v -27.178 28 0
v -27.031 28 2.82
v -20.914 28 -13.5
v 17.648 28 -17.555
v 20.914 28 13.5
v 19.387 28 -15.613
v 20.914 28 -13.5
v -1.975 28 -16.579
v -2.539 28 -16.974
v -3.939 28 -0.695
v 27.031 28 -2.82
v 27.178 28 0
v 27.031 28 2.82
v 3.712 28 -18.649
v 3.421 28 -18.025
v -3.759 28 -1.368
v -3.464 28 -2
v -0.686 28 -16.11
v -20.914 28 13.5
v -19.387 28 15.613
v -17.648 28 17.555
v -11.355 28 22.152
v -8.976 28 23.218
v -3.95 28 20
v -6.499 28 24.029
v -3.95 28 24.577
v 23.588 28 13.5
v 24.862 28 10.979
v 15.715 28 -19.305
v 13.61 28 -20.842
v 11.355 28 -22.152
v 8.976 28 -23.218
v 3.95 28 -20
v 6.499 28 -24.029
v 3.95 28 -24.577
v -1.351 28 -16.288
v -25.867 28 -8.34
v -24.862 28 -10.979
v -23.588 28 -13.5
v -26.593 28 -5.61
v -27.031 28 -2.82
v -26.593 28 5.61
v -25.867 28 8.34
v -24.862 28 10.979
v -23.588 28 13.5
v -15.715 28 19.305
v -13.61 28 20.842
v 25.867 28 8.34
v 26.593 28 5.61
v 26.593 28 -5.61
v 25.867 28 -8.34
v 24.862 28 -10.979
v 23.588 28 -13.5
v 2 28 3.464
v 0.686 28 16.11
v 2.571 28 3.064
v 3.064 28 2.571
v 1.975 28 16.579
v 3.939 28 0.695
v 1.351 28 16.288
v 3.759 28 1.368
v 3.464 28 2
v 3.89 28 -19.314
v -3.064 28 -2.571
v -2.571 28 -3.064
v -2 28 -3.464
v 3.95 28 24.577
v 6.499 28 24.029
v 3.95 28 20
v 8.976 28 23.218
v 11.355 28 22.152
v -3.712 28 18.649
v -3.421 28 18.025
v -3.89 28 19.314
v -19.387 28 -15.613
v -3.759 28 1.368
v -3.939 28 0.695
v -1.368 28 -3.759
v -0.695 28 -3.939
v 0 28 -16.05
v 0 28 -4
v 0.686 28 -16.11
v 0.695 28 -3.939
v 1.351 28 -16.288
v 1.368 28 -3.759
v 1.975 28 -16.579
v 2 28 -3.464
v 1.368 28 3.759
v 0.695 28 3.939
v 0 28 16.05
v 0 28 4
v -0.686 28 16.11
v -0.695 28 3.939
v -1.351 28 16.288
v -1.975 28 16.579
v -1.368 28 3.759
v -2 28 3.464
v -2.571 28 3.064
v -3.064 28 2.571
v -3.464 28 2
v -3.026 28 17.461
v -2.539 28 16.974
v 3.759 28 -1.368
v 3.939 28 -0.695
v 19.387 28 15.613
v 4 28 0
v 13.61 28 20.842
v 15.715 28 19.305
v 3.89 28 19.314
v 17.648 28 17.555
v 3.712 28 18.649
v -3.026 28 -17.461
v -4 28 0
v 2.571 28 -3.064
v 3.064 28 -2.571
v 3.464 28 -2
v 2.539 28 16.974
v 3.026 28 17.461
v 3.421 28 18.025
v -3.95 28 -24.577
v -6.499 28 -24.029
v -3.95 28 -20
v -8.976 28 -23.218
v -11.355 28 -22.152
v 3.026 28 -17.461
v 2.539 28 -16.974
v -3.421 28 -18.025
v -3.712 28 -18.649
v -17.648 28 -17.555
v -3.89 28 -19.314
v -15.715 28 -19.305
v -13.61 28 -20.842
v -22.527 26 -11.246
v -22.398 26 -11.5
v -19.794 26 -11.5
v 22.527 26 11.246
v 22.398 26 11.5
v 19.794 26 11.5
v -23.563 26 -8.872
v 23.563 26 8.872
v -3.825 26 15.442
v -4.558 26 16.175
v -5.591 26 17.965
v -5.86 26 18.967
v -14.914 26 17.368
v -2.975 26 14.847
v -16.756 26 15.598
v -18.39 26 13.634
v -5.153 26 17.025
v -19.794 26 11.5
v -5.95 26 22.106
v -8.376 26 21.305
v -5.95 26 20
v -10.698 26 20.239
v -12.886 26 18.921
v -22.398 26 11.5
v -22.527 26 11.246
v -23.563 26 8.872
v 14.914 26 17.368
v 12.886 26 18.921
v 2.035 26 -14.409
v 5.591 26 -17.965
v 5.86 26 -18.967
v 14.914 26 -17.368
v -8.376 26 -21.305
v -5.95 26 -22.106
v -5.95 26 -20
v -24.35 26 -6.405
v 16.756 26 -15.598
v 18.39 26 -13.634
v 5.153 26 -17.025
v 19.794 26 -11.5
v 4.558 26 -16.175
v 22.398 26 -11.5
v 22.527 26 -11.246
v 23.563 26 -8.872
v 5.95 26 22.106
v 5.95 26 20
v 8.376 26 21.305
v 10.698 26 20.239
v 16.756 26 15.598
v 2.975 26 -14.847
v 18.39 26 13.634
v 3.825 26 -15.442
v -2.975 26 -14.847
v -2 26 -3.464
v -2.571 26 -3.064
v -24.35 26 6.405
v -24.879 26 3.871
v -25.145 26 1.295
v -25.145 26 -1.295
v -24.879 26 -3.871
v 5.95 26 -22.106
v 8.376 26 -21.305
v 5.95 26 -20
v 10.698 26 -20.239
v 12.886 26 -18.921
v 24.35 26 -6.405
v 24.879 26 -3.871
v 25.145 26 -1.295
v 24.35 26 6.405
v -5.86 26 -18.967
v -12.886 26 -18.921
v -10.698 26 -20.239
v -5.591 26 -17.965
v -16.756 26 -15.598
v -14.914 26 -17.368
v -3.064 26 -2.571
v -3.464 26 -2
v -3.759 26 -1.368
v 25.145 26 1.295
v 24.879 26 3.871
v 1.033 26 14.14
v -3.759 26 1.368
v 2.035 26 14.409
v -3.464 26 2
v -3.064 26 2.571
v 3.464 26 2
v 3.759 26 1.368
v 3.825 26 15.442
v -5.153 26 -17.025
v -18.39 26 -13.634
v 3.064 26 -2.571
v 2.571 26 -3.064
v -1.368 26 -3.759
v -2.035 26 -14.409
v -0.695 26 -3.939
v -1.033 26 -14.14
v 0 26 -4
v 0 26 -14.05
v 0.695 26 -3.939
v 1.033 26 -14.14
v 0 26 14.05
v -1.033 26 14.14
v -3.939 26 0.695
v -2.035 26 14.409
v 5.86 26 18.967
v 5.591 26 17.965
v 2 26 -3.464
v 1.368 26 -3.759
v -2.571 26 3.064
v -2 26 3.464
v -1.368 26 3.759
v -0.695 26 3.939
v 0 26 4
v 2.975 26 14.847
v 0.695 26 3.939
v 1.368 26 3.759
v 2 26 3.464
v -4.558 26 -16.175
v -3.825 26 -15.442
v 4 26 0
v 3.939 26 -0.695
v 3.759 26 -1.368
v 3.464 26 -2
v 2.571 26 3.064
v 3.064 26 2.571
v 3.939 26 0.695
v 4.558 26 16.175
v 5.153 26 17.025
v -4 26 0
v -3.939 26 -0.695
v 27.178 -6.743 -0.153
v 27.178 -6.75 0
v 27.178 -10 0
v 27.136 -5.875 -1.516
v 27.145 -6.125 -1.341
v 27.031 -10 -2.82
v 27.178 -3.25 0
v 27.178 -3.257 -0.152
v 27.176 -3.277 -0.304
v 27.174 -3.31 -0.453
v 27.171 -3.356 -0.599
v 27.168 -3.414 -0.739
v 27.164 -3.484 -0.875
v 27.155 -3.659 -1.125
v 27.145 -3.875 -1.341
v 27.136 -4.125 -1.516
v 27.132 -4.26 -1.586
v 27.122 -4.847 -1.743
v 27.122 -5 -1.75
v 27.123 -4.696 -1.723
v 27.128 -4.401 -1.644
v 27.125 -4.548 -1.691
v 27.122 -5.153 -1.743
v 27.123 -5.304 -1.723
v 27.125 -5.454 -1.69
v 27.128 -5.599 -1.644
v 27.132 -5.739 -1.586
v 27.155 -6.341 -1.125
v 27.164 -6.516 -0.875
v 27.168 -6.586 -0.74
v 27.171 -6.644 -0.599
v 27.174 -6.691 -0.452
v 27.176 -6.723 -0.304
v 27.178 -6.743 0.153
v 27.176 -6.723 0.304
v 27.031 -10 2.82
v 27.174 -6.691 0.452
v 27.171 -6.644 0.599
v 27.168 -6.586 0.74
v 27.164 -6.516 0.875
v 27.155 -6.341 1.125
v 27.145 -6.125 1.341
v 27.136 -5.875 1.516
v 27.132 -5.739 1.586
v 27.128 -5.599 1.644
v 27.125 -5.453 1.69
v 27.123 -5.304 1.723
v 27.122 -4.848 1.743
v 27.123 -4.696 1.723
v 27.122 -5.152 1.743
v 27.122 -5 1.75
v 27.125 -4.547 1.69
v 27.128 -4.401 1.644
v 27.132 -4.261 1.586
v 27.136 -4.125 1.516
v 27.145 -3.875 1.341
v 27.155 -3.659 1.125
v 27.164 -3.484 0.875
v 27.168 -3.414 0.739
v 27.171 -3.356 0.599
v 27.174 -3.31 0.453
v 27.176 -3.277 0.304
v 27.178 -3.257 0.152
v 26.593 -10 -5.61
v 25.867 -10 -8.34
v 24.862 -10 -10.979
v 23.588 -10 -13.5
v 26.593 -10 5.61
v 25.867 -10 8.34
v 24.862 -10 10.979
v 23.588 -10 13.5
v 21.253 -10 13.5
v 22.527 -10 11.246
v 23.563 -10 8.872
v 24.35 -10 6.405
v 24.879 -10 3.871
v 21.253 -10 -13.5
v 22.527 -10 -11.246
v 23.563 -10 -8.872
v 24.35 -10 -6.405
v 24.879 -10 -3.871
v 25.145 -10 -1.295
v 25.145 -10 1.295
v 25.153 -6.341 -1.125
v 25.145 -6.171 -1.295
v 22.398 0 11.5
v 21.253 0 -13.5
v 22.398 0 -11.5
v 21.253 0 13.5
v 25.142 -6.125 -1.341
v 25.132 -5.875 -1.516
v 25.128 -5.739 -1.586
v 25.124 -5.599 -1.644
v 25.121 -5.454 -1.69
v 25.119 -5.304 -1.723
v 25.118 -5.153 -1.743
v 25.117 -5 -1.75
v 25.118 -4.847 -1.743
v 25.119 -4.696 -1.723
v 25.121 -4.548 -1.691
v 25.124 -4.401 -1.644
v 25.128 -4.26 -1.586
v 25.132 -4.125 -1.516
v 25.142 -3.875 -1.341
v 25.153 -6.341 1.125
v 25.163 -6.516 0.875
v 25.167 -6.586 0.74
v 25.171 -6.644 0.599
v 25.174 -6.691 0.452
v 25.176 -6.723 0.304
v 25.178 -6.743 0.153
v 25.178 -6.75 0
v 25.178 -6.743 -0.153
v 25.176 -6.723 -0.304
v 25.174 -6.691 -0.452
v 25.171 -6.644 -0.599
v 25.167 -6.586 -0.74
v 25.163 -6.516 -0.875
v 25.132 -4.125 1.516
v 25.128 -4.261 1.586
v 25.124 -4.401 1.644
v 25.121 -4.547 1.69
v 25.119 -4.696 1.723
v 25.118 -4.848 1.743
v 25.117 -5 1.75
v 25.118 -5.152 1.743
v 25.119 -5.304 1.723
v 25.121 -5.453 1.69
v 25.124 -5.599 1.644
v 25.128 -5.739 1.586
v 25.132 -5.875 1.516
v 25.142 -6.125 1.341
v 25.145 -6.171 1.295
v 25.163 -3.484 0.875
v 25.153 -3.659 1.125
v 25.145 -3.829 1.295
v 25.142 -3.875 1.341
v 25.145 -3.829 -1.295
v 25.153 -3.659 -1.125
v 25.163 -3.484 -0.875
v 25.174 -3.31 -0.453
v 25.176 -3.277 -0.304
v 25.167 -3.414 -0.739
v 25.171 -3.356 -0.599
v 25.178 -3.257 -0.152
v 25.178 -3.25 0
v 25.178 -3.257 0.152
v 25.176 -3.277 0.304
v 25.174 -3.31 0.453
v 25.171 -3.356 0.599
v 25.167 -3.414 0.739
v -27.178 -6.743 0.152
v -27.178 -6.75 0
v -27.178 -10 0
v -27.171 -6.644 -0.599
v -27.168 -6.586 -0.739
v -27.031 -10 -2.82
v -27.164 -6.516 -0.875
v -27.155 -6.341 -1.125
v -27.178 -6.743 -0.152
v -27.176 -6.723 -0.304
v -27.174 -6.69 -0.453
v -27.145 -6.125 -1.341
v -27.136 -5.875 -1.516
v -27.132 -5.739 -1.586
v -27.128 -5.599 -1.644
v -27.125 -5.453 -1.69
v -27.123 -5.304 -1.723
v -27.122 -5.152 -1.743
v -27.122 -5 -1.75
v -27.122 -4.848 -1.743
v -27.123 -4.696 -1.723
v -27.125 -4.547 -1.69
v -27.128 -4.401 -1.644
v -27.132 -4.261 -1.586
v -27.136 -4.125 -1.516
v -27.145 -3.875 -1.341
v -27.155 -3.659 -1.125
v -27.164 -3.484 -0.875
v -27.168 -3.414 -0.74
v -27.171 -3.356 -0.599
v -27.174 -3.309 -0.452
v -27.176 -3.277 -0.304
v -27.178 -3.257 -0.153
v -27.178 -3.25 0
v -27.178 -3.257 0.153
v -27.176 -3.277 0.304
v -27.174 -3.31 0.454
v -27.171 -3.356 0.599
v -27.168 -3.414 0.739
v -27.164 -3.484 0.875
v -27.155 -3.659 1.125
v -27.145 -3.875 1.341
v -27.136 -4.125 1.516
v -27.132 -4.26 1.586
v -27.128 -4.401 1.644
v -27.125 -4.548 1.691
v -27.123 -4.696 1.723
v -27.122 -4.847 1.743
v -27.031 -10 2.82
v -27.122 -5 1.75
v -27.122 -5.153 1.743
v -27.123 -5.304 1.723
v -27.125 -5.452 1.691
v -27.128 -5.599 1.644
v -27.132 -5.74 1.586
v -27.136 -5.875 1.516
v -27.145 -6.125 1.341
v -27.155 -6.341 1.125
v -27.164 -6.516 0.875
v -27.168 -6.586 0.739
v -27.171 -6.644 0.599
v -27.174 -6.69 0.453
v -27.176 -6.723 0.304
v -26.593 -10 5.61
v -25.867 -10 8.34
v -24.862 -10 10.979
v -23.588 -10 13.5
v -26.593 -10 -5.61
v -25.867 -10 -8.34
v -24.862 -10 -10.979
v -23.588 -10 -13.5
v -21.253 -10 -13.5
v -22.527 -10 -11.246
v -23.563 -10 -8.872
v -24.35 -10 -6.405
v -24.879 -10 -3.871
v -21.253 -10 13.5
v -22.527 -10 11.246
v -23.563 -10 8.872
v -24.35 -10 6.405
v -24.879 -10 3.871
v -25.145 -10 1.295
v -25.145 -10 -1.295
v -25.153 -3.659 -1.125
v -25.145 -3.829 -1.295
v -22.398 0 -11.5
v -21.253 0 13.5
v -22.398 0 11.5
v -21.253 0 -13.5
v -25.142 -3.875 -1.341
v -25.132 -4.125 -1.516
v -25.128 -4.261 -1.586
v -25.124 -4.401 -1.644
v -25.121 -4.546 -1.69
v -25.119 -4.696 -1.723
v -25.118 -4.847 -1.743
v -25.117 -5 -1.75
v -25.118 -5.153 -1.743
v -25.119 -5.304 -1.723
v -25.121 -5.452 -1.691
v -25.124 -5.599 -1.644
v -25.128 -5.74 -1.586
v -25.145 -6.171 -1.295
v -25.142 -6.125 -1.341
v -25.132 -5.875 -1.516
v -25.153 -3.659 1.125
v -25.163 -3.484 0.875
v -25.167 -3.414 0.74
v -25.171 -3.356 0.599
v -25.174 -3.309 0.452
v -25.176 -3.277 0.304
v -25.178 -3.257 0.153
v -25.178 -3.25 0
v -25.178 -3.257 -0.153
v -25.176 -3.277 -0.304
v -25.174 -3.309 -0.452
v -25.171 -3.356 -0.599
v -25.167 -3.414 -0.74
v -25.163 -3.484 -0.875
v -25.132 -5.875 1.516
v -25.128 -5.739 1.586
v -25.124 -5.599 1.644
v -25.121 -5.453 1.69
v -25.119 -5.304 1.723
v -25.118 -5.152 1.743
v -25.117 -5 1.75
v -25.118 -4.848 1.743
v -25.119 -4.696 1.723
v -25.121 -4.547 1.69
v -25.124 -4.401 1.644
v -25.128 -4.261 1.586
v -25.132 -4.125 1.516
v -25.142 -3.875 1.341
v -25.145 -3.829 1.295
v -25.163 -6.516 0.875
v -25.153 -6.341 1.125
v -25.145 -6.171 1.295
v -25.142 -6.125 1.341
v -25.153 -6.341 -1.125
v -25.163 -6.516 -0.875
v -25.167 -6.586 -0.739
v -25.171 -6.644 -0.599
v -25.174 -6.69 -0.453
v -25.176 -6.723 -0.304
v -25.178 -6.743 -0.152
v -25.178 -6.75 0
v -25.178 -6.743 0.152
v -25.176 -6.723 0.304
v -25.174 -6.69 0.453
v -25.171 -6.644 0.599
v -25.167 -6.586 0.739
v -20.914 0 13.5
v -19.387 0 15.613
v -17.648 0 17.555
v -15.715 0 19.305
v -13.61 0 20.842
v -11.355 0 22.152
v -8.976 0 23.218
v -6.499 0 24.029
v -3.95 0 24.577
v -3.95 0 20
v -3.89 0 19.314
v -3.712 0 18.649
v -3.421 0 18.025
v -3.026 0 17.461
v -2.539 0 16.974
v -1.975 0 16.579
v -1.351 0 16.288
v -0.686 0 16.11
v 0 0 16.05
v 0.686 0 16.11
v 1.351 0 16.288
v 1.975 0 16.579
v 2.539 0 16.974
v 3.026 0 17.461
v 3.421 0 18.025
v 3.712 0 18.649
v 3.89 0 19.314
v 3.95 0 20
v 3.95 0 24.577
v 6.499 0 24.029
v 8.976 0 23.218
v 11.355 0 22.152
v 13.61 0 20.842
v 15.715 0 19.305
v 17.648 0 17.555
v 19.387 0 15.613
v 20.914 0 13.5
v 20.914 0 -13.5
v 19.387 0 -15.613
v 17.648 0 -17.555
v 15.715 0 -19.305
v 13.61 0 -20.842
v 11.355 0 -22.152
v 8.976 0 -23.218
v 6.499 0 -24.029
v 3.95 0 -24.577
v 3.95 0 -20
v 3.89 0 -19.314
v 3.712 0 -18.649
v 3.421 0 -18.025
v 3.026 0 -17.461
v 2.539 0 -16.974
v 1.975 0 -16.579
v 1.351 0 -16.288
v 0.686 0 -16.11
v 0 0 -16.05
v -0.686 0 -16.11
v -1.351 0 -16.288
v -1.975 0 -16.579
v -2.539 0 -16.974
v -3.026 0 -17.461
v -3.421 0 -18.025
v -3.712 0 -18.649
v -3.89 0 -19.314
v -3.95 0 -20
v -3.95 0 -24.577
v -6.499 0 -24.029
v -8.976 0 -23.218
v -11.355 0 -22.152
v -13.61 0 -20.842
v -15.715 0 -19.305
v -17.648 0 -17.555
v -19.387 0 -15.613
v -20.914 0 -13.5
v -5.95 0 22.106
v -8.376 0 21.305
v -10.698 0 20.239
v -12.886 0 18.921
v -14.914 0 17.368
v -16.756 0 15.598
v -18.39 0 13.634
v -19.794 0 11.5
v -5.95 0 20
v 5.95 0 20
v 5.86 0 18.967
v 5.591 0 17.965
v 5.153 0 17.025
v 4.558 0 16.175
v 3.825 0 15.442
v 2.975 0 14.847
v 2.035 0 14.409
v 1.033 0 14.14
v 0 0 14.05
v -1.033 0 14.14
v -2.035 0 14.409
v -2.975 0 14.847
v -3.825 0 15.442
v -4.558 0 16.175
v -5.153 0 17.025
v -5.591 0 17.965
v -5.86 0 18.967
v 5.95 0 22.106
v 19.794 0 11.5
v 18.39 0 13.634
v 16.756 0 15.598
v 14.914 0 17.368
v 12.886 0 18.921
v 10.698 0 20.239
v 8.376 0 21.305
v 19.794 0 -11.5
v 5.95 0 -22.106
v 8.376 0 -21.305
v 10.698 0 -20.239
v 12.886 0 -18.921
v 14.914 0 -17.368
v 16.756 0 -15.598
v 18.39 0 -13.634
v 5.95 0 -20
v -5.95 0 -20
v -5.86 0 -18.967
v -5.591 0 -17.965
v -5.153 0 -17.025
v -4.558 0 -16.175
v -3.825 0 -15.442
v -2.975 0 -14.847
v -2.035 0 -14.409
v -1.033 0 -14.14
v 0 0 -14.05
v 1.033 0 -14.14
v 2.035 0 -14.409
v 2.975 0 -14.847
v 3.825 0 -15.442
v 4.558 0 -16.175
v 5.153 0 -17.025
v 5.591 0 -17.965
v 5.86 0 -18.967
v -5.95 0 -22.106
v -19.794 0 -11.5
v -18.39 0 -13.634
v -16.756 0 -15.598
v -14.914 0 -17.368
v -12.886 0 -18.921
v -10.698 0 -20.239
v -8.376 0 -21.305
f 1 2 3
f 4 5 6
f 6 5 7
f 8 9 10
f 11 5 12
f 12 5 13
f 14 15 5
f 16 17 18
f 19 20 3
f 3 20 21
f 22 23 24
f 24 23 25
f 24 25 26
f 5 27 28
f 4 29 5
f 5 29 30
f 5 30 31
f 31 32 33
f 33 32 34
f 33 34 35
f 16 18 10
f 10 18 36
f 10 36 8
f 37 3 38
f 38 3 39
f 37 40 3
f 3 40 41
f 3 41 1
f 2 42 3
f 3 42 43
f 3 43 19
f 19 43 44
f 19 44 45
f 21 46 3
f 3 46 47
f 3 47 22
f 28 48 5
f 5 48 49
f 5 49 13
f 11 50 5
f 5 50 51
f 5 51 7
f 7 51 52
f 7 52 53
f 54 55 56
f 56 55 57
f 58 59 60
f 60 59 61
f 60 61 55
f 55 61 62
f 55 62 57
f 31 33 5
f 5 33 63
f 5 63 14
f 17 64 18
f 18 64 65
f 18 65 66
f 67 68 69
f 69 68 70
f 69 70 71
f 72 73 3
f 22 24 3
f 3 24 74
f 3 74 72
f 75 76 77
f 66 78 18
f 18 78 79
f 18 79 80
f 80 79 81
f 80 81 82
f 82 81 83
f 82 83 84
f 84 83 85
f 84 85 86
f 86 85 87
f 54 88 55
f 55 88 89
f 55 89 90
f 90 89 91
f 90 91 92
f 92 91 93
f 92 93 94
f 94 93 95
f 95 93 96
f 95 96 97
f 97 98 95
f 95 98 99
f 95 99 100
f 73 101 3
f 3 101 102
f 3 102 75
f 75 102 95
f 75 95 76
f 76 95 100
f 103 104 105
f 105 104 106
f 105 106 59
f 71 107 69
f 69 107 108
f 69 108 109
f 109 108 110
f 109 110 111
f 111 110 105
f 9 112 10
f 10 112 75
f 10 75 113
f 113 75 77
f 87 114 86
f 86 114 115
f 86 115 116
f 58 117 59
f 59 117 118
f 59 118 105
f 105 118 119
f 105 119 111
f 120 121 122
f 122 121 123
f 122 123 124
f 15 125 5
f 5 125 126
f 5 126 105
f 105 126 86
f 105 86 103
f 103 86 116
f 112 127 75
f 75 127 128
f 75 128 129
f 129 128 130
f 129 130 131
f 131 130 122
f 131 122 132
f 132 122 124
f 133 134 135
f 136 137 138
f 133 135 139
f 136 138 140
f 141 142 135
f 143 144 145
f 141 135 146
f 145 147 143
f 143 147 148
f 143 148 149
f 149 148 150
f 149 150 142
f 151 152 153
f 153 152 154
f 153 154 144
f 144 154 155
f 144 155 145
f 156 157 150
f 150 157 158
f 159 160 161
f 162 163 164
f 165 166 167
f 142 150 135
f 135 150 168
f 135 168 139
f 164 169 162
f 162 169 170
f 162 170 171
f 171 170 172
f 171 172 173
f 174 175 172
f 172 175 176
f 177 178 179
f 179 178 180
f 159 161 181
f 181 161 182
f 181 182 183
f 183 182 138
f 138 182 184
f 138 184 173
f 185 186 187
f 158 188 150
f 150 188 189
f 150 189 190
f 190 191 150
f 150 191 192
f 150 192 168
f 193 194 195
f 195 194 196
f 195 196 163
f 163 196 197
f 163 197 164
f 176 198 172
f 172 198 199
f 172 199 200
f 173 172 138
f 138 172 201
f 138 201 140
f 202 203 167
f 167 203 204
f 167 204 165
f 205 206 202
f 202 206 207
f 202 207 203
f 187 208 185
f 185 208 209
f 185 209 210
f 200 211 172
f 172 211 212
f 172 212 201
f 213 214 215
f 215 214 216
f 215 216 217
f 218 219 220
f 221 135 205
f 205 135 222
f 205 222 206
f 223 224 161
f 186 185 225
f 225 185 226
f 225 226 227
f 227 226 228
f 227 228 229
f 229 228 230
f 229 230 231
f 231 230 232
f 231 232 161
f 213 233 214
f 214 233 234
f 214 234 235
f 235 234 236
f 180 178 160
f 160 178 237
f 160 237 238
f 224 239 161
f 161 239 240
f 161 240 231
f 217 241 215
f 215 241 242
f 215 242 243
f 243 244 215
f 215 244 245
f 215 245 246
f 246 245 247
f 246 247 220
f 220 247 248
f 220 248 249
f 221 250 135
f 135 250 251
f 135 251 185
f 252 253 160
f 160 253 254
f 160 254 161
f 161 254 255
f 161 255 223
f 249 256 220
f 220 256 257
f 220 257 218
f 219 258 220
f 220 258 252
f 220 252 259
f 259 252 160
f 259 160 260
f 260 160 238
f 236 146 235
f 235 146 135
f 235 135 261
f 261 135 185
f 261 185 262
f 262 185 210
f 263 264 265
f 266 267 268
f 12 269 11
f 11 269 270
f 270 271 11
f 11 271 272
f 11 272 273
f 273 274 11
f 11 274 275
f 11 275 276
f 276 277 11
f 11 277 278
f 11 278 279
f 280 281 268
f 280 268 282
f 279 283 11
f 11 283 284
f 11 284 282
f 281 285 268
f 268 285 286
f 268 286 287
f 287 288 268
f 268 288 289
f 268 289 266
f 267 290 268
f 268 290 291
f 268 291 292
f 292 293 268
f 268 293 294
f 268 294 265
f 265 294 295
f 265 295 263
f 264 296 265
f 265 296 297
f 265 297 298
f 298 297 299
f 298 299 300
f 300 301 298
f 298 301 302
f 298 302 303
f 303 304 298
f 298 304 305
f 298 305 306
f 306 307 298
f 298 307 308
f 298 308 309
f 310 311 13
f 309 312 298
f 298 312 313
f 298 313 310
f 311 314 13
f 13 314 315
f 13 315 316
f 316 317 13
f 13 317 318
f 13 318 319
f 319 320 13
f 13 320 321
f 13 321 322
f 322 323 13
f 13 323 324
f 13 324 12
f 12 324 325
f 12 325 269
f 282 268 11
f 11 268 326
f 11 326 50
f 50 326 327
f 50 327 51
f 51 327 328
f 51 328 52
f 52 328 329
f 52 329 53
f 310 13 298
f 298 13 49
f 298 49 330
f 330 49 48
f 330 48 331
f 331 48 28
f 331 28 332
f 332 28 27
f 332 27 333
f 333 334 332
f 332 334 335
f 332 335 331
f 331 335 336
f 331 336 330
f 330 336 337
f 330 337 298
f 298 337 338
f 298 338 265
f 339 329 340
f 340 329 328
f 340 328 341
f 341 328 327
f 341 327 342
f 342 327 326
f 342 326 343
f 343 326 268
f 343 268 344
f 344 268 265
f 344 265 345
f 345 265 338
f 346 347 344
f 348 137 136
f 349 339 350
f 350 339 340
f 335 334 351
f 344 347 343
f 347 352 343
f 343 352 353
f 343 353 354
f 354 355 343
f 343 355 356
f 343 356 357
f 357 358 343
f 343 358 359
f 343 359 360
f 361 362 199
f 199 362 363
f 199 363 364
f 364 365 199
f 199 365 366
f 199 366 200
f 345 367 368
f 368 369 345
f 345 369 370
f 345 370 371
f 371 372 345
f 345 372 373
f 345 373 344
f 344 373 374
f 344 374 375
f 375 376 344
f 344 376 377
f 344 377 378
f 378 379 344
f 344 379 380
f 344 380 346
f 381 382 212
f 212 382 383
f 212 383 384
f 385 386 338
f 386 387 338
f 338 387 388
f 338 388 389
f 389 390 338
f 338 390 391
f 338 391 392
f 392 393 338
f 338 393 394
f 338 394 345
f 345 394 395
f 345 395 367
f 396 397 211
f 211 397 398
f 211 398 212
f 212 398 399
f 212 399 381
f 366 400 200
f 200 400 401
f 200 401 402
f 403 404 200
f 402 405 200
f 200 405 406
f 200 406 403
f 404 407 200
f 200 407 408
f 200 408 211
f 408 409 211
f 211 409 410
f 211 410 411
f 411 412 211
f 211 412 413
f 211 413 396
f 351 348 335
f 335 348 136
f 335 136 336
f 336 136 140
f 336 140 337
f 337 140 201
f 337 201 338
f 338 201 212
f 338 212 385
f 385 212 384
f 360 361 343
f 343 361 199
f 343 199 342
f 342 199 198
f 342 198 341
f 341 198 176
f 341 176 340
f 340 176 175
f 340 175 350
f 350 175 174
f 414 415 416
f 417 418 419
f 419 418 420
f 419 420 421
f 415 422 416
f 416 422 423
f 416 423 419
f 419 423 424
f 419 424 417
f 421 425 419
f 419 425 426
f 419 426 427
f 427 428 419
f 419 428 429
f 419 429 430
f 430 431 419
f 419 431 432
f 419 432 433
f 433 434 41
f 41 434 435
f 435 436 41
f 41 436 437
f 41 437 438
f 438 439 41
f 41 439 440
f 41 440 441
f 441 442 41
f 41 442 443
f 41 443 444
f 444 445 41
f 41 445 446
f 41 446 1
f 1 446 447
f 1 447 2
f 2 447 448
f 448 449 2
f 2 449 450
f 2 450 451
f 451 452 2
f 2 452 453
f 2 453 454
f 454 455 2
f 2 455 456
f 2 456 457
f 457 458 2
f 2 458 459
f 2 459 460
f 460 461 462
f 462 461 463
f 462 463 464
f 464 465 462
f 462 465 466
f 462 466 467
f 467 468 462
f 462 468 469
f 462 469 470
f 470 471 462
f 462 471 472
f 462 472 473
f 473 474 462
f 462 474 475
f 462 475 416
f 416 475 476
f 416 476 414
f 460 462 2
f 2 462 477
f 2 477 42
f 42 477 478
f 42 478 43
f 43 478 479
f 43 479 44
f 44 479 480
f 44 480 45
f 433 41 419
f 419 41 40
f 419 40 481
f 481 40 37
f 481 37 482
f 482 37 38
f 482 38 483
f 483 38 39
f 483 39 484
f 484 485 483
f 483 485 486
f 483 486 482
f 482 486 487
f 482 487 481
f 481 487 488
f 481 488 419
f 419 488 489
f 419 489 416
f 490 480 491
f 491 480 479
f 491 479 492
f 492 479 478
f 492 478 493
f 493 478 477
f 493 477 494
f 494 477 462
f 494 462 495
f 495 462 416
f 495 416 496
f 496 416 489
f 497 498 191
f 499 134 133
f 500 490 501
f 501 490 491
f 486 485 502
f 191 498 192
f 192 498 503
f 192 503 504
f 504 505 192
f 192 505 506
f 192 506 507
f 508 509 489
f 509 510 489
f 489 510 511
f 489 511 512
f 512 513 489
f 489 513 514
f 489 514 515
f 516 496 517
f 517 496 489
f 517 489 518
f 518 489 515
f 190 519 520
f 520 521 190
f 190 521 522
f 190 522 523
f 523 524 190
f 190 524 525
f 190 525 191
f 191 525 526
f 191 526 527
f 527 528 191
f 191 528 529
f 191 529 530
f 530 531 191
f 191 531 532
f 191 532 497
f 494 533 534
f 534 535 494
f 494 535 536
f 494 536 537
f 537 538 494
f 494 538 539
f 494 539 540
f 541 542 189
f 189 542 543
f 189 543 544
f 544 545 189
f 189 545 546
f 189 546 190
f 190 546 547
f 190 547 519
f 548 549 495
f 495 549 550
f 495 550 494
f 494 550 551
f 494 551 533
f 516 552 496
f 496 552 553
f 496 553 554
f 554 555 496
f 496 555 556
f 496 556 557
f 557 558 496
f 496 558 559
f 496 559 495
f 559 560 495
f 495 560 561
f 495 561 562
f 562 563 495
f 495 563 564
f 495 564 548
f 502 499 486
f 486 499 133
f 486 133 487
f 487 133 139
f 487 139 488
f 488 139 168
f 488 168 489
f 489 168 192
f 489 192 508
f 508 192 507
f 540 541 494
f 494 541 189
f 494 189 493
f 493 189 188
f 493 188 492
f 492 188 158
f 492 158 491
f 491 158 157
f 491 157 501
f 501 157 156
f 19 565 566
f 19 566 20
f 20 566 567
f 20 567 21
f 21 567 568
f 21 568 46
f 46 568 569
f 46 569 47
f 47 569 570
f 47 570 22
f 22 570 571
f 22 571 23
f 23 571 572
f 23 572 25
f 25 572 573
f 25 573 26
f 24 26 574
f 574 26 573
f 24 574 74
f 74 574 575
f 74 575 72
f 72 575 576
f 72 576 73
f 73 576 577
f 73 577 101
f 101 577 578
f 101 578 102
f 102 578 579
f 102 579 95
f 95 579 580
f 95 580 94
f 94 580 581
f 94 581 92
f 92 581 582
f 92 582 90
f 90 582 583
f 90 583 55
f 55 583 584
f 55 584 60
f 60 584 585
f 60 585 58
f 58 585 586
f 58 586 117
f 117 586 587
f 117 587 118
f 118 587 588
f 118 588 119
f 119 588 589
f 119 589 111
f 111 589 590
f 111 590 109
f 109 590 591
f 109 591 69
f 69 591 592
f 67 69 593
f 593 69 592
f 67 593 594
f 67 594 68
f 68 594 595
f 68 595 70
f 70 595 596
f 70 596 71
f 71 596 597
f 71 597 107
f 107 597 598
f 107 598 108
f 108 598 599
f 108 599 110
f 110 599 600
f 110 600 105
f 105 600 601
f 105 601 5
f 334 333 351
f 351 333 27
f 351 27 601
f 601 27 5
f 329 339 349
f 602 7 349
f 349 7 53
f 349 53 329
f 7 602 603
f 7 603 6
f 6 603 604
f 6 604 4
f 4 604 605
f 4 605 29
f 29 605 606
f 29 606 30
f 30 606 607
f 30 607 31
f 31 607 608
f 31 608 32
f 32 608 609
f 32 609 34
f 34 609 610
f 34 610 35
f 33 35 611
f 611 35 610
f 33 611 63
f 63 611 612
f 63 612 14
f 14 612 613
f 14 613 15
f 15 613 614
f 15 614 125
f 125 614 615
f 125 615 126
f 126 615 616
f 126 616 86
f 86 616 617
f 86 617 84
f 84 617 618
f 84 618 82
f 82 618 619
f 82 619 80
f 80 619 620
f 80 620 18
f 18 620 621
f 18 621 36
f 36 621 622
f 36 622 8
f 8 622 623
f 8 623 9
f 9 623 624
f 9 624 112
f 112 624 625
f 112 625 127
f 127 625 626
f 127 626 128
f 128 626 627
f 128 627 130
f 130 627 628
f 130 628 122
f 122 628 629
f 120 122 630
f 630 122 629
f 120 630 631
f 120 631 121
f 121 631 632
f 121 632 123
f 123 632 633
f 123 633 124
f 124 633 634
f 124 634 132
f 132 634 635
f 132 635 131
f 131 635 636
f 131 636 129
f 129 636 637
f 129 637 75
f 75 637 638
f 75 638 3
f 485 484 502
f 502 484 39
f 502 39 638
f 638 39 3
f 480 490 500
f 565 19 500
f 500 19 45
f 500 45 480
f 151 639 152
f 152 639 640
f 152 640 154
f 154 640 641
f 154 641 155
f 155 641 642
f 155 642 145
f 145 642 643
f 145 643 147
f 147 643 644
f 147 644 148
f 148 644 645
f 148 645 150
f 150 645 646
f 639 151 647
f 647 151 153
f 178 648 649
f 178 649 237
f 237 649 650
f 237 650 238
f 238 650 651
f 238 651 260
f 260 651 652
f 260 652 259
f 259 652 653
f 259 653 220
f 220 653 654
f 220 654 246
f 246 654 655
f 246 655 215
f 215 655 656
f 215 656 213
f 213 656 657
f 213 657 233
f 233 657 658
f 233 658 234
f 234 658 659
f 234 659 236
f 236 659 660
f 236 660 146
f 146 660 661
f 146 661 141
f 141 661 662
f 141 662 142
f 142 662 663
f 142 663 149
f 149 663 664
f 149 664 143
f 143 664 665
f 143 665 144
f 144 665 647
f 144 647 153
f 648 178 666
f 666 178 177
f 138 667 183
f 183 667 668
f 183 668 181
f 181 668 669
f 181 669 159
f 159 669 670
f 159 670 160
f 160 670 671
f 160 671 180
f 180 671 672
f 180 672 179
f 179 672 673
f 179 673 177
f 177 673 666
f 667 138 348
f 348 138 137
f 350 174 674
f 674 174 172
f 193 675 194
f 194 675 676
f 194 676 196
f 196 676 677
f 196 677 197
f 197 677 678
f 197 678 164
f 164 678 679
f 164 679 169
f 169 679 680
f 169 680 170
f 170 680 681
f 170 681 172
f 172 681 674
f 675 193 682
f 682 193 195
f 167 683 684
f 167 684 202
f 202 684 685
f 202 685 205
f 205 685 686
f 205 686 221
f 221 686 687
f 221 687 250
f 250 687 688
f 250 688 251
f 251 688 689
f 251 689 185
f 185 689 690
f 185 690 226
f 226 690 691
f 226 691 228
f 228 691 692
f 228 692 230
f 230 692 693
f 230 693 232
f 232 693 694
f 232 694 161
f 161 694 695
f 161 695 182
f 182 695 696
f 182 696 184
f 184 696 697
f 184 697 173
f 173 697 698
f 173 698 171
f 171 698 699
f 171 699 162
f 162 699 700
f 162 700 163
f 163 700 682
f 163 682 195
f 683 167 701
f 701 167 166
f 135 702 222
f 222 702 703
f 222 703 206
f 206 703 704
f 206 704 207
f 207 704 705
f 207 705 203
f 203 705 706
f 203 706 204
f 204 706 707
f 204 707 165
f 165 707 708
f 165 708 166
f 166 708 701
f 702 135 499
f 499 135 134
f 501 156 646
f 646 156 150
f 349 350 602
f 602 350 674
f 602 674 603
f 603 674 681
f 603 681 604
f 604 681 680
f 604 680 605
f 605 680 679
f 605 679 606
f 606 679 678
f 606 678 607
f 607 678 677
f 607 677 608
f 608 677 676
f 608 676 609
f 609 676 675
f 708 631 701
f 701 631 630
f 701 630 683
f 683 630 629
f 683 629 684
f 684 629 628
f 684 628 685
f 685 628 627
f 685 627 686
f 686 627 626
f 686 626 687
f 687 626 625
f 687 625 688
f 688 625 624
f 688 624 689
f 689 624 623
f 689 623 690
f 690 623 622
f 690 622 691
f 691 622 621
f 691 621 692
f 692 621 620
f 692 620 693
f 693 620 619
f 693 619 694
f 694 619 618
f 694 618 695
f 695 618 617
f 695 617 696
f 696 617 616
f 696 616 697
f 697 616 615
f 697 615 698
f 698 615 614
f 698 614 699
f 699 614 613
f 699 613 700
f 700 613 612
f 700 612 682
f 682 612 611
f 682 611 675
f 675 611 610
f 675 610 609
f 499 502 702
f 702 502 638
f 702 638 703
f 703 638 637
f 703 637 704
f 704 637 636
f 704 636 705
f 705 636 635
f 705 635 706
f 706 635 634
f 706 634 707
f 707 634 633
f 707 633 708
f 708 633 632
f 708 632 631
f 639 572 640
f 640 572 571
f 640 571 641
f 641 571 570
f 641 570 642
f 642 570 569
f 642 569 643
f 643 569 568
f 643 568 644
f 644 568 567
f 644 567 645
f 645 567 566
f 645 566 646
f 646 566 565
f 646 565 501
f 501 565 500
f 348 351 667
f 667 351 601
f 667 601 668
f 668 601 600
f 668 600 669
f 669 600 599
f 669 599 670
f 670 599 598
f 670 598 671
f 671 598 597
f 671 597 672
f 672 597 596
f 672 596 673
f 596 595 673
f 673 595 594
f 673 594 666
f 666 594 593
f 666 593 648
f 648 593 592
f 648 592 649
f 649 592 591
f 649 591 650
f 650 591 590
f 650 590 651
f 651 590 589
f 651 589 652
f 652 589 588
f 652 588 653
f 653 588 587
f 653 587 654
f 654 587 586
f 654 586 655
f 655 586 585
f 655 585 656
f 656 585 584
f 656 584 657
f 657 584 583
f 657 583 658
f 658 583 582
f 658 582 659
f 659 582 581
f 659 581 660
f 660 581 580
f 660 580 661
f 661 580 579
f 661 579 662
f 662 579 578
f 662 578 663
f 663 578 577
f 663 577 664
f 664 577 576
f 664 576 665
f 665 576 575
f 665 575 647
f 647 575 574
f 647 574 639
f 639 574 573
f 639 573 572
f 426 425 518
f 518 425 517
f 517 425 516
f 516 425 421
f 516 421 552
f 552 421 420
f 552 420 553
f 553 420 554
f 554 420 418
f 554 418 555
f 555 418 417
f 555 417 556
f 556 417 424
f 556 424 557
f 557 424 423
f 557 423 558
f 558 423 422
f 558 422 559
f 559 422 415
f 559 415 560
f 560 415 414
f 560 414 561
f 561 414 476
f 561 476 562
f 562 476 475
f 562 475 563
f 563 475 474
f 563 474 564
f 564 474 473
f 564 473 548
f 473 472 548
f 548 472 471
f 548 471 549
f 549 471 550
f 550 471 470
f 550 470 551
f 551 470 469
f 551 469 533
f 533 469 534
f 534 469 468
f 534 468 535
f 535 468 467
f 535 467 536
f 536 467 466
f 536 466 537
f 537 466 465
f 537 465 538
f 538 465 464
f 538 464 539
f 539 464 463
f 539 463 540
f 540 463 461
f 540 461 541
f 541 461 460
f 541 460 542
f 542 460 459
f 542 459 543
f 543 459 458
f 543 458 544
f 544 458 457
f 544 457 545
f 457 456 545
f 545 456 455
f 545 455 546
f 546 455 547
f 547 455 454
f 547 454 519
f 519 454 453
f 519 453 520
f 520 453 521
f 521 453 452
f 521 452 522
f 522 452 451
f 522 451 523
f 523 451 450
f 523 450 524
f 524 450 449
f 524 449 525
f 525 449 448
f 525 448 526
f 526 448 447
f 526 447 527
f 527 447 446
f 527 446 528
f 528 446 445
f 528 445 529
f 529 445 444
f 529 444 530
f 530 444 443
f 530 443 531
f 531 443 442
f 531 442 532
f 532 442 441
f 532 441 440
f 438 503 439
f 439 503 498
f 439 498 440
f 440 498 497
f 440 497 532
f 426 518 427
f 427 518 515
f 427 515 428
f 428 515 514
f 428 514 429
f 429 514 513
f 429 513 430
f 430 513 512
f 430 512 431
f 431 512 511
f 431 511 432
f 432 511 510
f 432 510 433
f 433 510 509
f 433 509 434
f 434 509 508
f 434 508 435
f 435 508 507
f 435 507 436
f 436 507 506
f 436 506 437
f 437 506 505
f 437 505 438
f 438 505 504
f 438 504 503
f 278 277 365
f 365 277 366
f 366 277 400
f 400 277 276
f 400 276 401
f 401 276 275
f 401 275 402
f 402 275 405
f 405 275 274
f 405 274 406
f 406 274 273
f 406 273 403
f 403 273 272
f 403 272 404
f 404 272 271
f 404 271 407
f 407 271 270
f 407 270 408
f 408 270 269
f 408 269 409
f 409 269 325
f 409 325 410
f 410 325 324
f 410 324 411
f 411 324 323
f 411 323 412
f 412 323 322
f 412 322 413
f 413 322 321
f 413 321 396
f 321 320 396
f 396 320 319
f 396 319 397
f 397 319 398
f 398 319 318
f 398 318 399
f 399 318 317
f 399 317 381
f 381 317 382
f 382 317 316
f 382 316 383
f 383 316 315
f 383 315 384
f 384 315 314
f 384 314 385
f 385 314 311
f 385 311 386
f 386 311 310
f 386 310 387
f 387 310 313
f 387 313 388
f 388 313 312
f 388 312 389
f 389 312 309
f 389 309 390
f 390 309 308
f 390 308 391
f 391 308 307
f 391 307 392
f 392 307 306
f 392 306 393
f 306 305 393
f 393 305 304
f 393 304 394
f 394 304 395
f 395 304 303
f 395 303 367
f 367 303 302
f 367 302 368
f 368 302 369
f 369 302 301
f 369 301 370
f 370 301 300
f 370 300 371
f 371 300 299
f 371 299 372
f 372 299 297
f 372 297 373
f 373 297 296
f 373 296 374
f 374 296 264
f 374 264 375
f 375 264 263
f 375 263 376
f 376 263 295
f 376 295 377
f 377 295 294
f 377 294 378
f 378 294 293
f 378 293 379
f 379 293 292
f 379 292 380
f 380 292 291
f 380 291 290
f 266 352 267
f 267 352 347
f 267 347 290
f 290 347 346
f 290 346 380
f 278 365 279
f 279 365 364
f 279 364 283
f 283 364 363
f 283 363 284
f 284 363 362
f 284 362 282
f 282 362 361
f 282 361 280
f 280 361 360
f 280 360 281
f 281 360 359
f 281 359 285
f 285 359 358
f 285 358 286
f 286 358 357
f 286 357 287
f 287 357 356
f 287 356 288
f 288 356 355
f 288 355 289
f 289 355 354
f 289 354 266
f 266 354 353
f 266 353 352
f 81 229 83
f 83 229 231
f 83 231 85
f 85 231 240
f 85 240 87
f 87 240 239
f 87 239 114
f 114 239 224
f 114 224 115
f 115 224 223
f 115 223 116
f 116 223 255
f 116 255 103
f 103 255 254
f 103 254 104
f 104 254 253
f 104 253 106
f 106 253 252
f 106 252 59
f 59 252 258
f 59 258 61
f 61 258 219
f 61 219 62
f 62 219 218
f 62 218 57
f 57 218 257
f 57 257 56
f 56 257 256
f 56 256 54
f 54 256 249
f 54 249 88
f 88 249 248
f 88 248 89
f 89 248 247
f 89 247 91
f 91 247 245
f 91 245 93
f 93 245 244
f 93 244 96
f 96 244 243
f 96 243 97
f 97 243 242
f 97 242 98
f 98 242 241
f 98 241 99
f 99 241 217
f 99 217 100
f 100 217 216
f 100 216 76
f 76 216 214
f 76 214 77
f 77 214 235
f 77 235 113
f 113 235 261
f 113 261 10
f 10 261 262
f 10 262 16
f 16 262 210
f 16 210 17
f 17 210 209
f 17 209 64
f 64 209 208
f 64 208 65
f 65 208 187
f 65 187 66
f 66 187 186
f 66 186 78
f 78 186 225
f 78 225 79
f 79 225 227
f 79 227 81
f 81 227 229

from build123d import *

# Parameters (mm, degrees)
SKETCH2_R               = 27.178
BOSS_EXTRUDE1_DEPTH     = 10
BOSS_EXTRUDE2_START     = -28
BOSS_EXTRUDE2_DEPTH     = 28
SHELL1_START            = -10
SHELL1_DEPTH            = 36
SHELL1_2_DEPTH          = 8
CUT_EXTRUDE3_DEPTH      = 10
CUT_EXTRUDE4_DEPTH      = 47.115916344
CUT_EXTRUDE4_DEPTH_BACK = 47.115916344
SKETCH6_R               = 1.75
SKETCH7_R               = 4
CUT_EXTRUDE6_DEPTH      = 47.115916478


# Read off the part's stored shape, not the designer's step: Shell1
with BuildPart() as part:
    # Sketch2 → Boss-Extrude1 (new body)
    with BuildSketch(Plane(origin=(0, 0, 0), x_dir=(1, 0, 0), z_dir=(0, 1, 0))):
        with Locations(Location((0, 0, 0), (0, 0, 270))):
            Circle(SKETCH2_R)
    extrude(amount=-BOSS_EXTRUDE1_DEPTH)

    # Sketch3 → Boss-Extrude2 (add)
    with BuildSketch(Plane(origin=(0, 0, 0), x_dir=(-1, 0, 0), z_dir=(0, -1, 0)).offset(BOSS_EXTRUDE2_START)):
        with BuildLine():
            Line((-23.587998728, 13.5), (-20.913788663, 13.5))
            ThreePointArc((-20.913788663, 13.5), (-13.609833087, 20.842480649), (-3.95, 24.57710431))
            Line((-3.95, 24.57710431), (-3.95, 20))
            ThreePointArc((-3.95, 20), (0, 16.05), (3.95, 20))
            Line((3.95, 20), (3.95, 24.57710431))
            ThreePointArc((3.95, 24.57710431), (13.609833087, 20.842480649), (20.913788663, 13.5))
            Line((20.913788663, 13.5), (23.587998728, 13.5))
            ThreePointArc((23.587998728, 13.5), (27.178, 0), (23.587998728, -13.5))
            Line((23.587998728, -13.5), (20.913788663, -13.5))
            ThreePointArc((20.913788663, -13.5), (13.609833087, -20.842480649), (3.95, -24.57710431))
            Line((3.95, -24.57710431), (3.95, -20))
            ThreePointArc((3.95, -20), (0, -16.05), (-3.95, -20))
            Line((-3.95, -20), (-3.95, -24.57710431))
            ThreePointArc((-3.95, -24.57710431), (-13.609833087, -20.842480649), (-20.913788663, -13.5))
            Line((-20.913788663, -13.5), (-23.587998728, -13.5))
            ThreePointArc((-23.587998728, -13.5), (-27.178, 0), (-23.587998728, 13.5))
        make_face()
    extrude(amount=BOSS_EXTRUDE2_DEPTH)

    # Shell1 outline → Shell1 (cut)
    with BuildSketch(Plane(origin=(0, 0, 0), x_dir=(1, 0, 0), z_dir=(0, 1, 0)).offset(SHELL1_START)):
        with BuildLine():
            ThreePointArc((22.398251807, -11.5), (25.178, 0), (22.398251807, 11.5))
            Line((22.398251807, 11.5), (19.794356677, 11.5))
            ThreePointArc((19.794356677, 11.5), (13.921689669, 18.172867496), (5.95, 22.105747132))
            Line((5.95, 22.105747132), (5.95, 20))
            ThreePointArc((5.95, 20), (0, 14.05), (-5.95, 20))
            Line((-5.95, 20), (-5.95, 22.105747132))
            ThreePointArc((-5.95, 22.105747132), (-13.921689669, 18.172867496), (-19.794356677, 11.5))
            Line((-19.794356677, 11.5), (-22.398251807, 11.5))
            ThreePointArc((-22.398251807, 11.5), (-25.178, 0), (-22.398251807, -11.5))
            Line((-22.398251807, -11.5), (-19.794356677, -11.5))
            ThreePointArc((-19.794356677, -11.5), (-13.921689669, -18.172867496), (-5.95, -22.105747132))
            Line((-5.95, -22.105747132), (-5.95, -20))
            ThreePointArc((-5.95, -20), (0, -14.05), (5.95, -20))
            Line((5.95, -20), (5.95, -22.105747132))
            ThreePointArc((5.95, -22.105747132), (13.921689669, -18.172867496), (19.794356677, -11.5))
            Line((19.794356677, -11.5), (22.398251807, -11.5))
        make_face()
    extrude(amount=SHELL1_DEPTH, mode=Mode.SUBTRACT)

    # Shell1 2 outline → Shell1 2 (cut)
    with BuildSketch(Plane(origin=(0, 0, 0), x_dir=(1, 0, 0), z_dir=(0, 1, 0)).offset(SHELL1_START)):
        with BuildLine():
            Line((19.794356677, 11.5), (22.398251807, 11.5))
            ThreePointArc((22.398251807, 11.5), (0, 25.178), (-22.398251807, 11.5))
            Line((-22.398251807, 11.5), (-19.794356677, 11.5))
            ThreePointArc((-19.794356677, 11.5), (-13.921689669, 18.172867496), (-5.95, 22.105747132))
            Line((-5.95, 22.105747132), (-5.95, 20))
            ThreePointArc((-5.95, 20), (0, 14.05), (5.95, 20))
            Line((5.95, 20), (5.95, 22.105747132))
            ThreePointArc((5.95, 22.105747132), (13.921689669, 18.172867496), (19.794356677, 11.5))
        make_face()
        with BuildLine():
            ThreePointArc((-22.398251807, -11.5), (0, -25.178), (22.398251807, -11.5))
            Line((22.398251807, -11.5), (19.794356677, -11.5))
            ThreePointArc((19.794356677, -11.5), (13.921689669, -18.172867496), (5.95, -22.105747132))
            Line((5.95, -22.105747132), (5.95, -20))
            ThreePointArc((5.95, -20), (0, -14.05), (-5.95, -20))
            Line((-5.95, -20), (-5.95, -22.105747132))
            ThreePointArc((-5.95, -22.105747132), (-13.921689669, -18.172867496), (-19.794356677, -11.5))
            Line((-19.794356677, -11.5), (-22.398251807, -11.5))
        make_face()
    extrude(amount=SHELL1_2_DEPTH, mode=Mode.SUBTRACT)

    # Sketch5 → Cut-Extrude3 (cut)
    with BuildSketch(Plane(origin=(0, -10, 0), x_dir=(1, 0, 0), z_dir=(0, 1, 0))):
        with BuildLine():
            Line((-23.587998728, 13.5), (-21.252804144, 13.5))
            ThreePointArc((-21.252804144, 13.5), (-21.848424918, 12.513113625), (-22.398251807, 11.5))
            Line((-22.398251807, 11.5), (22.398251807, 11.5))
            ThreePointArc((22.398251807, 11.5), (21.848424918, 12.513113625), (21.252804144, 13.5))
            Line((21.252804144, 13.5), (23.587998728, 13.5))
            ThreePointArc((23.587998728, 13.5), (0, 27.178), (-23.587998728, 13.5))
        make_face()
    cut_extrude3 = extrude(amount=CUT_EXTRUDE3_DEPTH, mode=Mode.SUBTRACT)

    # Mirror1: Cut-Extrude3 across plane
    add(cut_extrude3.mirror(Plane.XY), mode=Mode.SUBTRACT)

    # Sketch6 → Cut-Extrude4 (cut, two sides: drawn at the far end of the back side and taken through both)
    with BuildSketch(Plane(origin=(0, 0, 0), x_dir=(0, 0, -1), z_dir=(1, 0, 0)).offset(-CUT_EXTRUDE4_DEPTH_BACK)):
        with Locations((0, -5)):
            Circle(SKETCH6_R)
    extrude(amount=CUT_EXTRUDE4_DEPTH + CUT_EXTRUDE4_DEPTH_BACK, mode=Mode.SUBTRACT)

    # Sketch7 → Cut-Extrude6 (cut, through all)
    with BuildSketch(Plane(origin=(0, 0, 0), x_dir=(1, 0, 0), z_dir=(0, 1, 0))):
        with Locations(Location((0, 0, 0), (0, 0, 90))):
            Circle(SKETCH7_R)
    extrude(amount=CUT_EXTRUDE6_DEPTH, mode=Mode.SUBTRACT)


solid = part.part
